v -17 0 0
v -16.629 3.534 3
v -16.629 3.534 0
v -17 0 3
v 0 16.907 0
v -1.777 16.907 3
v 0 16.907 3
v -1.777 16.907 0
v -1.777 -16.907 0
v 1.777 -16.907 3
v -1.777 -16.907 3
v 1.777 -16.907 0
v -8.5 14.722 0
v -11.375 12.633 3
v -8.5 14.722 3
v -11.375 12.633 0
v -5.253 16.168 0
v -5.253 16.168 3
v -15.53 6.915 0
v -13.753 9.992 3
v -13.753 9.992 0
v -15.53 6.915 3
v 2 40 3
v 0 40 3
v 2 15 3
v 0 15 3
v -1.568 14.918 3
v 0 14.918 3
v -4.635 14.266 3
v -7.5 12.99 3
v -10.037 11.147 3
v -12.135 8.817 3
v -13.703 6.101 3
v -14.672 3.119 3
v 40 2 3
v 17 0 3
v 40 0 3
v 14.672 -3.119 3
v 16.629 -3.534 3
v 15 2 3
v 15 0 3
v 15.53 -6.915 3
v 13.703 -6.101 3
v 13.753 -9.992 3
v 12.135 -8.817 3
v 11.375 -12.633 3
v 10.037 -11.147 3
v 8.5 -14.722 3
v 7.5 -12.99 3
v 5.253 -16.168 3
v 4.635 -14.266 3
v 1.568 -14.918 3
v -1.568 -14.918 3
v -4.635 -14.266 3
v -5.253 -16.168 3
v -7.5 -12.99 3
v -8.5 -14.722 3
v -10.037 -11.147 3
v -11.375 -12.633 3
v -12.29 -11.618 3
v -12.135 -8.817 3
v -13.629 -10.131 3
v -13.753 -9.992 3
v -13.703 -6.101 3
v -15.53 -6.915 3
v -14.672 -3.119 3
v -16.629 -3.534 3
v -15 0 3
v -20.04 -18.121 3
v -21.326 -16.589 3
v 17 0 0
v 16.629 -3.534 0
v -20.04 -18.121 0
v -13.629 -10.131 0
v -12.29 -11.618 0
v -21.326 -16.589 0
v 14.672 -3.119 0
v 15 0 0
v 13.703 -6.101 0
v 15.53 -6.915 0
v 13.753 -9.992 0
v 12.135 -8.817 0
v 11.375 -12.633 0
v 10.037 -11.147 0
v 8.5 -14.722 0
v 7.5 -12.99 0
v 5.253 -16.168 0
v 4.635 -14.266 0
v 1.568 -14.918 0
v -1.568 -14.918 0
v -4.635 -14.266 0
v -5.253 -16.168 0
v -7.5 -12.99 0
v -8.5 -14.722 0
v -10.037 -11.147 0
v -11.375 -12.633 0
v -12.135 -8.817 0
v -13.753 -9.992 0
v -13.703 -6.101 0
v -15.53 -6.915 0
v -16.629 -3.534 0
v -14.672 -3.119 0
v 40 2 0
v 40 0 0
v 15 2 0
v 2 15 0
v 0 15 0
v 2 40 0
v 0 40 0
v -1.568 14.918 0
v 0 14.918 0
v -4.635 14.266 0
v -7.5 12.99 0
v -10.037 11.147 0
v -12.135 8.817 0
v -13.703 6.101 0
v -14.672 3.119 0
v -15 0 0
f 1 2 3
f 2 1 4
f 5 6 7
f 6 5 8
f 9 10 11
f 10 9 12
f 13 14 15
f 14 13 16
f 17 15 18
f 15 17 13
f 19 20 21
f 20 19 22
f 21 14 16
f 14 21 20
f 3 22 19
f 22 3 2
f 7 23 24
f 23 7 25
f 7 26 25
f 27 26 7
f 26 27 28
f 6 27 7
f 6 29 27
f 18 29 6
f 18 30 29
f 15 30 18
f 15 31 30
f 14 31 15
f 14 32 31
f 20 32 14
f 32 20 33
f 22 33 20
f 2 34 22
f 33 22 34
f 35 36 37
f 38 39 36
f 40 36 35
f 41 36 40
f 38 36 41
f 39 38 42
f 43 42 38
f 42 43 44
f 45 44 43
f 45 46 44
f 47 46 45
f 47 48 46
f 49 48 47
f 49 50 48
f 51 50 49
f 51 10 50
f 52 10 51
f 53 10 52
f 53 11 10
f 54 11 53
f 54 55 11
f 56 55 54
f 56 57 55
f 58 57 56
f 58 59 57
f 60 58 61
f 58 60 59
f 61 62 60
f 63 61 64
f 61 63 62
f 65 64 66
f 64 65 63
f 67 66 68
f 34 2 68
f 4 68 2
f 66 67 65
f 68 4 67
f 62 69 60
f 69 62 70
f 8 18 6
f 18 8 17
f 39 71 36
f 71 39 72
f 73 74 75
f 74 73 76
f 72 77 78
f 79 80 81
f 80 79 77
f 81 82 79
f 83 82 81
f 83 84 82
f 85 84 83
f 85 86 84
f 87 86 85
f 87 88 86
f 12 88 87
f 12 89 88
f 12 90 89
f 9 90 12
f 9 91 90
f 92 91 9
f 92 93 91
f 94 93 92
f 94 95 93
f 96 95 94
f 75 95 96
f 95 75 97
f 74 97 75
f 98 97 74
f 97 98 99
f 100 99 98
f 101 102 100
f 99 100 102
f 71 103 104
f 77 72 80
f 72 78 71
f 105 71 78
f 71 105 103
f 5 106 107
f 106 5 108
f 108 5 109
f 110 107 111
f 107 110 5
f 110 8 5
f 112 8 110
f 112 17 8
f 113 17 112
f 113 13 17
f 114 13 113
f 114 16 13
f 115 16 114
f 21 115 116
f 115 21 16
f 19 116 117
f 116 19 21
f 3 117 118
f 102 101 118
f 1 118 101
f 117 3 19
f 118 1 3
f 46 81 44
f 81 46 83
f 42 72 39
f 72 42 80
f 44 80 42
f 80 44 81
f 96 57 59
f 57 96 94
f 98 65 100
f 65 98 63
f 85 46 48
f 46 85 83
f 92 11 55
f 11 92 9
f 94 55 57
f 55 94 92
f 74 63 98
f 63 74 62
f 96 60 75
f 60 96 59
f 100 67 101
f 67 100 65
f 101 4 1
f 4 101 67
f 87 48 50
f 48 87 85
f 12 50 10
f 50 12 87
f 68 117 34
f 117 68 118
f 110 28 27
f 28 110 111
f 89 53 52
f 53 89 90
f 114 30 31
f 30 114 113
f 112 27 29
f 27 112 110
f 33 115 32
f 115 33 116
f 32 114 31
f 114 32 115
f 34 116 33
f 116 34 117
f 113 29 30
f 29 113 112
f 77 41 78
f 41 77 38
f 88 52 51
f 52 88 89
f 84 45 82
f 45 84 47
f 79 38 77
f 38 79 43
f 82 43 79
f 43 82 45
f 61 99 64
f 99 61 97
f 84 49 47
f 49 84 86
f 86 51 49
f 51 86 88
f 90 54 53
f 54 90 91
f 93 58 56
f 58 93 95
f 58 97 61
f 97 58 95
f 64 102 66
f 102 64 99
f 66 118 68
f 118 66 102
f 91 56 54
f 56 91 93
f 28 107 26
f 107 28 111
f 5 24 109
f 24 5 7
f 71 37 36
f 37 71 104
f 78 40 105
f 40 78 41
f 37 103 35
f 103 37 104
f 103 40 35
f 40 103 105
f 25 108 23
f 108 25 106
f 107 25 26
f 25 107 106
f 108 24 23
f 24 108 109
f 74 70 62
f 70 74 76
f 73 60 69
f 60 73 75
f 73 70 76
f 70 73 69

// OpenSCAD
/* [Dimensions] */
// Inner Diameter in mm
DIA = 30;//[10:60]

// height in mm
HEIGHT = 03; //[02:10]

// Strength in mm
STRENGTH = 02; //[01:05]

// Leg Length in mm
LEGLENGTH = 25; //[0:60]

// Top Length in mm
TOPLENGTH = 12; //[0:60]

// measures in mm

difference() {
    cylinder(HEIGHT,DIA/2+STRENGTH,DIA/2+STRENGTH);cylinder(HEIGHT,DIA/2,DIA/2); 
    cube([40,40,HEIGHT]);
    }
    
 
translate([DIA/2,0,0]) cube([LEGLENGTH,STRENGTH,HEIGHT]);
translate([0,DIA/2,0]) cube([STRENGTH,LEGLENGTH,HEIGHT]);
 
rotate(130,90,0)translate([-STRENGTH/2,DIA/2,0]) cube([STRENGTH,TOPLENGTH,HEIGHT]);
    

    
